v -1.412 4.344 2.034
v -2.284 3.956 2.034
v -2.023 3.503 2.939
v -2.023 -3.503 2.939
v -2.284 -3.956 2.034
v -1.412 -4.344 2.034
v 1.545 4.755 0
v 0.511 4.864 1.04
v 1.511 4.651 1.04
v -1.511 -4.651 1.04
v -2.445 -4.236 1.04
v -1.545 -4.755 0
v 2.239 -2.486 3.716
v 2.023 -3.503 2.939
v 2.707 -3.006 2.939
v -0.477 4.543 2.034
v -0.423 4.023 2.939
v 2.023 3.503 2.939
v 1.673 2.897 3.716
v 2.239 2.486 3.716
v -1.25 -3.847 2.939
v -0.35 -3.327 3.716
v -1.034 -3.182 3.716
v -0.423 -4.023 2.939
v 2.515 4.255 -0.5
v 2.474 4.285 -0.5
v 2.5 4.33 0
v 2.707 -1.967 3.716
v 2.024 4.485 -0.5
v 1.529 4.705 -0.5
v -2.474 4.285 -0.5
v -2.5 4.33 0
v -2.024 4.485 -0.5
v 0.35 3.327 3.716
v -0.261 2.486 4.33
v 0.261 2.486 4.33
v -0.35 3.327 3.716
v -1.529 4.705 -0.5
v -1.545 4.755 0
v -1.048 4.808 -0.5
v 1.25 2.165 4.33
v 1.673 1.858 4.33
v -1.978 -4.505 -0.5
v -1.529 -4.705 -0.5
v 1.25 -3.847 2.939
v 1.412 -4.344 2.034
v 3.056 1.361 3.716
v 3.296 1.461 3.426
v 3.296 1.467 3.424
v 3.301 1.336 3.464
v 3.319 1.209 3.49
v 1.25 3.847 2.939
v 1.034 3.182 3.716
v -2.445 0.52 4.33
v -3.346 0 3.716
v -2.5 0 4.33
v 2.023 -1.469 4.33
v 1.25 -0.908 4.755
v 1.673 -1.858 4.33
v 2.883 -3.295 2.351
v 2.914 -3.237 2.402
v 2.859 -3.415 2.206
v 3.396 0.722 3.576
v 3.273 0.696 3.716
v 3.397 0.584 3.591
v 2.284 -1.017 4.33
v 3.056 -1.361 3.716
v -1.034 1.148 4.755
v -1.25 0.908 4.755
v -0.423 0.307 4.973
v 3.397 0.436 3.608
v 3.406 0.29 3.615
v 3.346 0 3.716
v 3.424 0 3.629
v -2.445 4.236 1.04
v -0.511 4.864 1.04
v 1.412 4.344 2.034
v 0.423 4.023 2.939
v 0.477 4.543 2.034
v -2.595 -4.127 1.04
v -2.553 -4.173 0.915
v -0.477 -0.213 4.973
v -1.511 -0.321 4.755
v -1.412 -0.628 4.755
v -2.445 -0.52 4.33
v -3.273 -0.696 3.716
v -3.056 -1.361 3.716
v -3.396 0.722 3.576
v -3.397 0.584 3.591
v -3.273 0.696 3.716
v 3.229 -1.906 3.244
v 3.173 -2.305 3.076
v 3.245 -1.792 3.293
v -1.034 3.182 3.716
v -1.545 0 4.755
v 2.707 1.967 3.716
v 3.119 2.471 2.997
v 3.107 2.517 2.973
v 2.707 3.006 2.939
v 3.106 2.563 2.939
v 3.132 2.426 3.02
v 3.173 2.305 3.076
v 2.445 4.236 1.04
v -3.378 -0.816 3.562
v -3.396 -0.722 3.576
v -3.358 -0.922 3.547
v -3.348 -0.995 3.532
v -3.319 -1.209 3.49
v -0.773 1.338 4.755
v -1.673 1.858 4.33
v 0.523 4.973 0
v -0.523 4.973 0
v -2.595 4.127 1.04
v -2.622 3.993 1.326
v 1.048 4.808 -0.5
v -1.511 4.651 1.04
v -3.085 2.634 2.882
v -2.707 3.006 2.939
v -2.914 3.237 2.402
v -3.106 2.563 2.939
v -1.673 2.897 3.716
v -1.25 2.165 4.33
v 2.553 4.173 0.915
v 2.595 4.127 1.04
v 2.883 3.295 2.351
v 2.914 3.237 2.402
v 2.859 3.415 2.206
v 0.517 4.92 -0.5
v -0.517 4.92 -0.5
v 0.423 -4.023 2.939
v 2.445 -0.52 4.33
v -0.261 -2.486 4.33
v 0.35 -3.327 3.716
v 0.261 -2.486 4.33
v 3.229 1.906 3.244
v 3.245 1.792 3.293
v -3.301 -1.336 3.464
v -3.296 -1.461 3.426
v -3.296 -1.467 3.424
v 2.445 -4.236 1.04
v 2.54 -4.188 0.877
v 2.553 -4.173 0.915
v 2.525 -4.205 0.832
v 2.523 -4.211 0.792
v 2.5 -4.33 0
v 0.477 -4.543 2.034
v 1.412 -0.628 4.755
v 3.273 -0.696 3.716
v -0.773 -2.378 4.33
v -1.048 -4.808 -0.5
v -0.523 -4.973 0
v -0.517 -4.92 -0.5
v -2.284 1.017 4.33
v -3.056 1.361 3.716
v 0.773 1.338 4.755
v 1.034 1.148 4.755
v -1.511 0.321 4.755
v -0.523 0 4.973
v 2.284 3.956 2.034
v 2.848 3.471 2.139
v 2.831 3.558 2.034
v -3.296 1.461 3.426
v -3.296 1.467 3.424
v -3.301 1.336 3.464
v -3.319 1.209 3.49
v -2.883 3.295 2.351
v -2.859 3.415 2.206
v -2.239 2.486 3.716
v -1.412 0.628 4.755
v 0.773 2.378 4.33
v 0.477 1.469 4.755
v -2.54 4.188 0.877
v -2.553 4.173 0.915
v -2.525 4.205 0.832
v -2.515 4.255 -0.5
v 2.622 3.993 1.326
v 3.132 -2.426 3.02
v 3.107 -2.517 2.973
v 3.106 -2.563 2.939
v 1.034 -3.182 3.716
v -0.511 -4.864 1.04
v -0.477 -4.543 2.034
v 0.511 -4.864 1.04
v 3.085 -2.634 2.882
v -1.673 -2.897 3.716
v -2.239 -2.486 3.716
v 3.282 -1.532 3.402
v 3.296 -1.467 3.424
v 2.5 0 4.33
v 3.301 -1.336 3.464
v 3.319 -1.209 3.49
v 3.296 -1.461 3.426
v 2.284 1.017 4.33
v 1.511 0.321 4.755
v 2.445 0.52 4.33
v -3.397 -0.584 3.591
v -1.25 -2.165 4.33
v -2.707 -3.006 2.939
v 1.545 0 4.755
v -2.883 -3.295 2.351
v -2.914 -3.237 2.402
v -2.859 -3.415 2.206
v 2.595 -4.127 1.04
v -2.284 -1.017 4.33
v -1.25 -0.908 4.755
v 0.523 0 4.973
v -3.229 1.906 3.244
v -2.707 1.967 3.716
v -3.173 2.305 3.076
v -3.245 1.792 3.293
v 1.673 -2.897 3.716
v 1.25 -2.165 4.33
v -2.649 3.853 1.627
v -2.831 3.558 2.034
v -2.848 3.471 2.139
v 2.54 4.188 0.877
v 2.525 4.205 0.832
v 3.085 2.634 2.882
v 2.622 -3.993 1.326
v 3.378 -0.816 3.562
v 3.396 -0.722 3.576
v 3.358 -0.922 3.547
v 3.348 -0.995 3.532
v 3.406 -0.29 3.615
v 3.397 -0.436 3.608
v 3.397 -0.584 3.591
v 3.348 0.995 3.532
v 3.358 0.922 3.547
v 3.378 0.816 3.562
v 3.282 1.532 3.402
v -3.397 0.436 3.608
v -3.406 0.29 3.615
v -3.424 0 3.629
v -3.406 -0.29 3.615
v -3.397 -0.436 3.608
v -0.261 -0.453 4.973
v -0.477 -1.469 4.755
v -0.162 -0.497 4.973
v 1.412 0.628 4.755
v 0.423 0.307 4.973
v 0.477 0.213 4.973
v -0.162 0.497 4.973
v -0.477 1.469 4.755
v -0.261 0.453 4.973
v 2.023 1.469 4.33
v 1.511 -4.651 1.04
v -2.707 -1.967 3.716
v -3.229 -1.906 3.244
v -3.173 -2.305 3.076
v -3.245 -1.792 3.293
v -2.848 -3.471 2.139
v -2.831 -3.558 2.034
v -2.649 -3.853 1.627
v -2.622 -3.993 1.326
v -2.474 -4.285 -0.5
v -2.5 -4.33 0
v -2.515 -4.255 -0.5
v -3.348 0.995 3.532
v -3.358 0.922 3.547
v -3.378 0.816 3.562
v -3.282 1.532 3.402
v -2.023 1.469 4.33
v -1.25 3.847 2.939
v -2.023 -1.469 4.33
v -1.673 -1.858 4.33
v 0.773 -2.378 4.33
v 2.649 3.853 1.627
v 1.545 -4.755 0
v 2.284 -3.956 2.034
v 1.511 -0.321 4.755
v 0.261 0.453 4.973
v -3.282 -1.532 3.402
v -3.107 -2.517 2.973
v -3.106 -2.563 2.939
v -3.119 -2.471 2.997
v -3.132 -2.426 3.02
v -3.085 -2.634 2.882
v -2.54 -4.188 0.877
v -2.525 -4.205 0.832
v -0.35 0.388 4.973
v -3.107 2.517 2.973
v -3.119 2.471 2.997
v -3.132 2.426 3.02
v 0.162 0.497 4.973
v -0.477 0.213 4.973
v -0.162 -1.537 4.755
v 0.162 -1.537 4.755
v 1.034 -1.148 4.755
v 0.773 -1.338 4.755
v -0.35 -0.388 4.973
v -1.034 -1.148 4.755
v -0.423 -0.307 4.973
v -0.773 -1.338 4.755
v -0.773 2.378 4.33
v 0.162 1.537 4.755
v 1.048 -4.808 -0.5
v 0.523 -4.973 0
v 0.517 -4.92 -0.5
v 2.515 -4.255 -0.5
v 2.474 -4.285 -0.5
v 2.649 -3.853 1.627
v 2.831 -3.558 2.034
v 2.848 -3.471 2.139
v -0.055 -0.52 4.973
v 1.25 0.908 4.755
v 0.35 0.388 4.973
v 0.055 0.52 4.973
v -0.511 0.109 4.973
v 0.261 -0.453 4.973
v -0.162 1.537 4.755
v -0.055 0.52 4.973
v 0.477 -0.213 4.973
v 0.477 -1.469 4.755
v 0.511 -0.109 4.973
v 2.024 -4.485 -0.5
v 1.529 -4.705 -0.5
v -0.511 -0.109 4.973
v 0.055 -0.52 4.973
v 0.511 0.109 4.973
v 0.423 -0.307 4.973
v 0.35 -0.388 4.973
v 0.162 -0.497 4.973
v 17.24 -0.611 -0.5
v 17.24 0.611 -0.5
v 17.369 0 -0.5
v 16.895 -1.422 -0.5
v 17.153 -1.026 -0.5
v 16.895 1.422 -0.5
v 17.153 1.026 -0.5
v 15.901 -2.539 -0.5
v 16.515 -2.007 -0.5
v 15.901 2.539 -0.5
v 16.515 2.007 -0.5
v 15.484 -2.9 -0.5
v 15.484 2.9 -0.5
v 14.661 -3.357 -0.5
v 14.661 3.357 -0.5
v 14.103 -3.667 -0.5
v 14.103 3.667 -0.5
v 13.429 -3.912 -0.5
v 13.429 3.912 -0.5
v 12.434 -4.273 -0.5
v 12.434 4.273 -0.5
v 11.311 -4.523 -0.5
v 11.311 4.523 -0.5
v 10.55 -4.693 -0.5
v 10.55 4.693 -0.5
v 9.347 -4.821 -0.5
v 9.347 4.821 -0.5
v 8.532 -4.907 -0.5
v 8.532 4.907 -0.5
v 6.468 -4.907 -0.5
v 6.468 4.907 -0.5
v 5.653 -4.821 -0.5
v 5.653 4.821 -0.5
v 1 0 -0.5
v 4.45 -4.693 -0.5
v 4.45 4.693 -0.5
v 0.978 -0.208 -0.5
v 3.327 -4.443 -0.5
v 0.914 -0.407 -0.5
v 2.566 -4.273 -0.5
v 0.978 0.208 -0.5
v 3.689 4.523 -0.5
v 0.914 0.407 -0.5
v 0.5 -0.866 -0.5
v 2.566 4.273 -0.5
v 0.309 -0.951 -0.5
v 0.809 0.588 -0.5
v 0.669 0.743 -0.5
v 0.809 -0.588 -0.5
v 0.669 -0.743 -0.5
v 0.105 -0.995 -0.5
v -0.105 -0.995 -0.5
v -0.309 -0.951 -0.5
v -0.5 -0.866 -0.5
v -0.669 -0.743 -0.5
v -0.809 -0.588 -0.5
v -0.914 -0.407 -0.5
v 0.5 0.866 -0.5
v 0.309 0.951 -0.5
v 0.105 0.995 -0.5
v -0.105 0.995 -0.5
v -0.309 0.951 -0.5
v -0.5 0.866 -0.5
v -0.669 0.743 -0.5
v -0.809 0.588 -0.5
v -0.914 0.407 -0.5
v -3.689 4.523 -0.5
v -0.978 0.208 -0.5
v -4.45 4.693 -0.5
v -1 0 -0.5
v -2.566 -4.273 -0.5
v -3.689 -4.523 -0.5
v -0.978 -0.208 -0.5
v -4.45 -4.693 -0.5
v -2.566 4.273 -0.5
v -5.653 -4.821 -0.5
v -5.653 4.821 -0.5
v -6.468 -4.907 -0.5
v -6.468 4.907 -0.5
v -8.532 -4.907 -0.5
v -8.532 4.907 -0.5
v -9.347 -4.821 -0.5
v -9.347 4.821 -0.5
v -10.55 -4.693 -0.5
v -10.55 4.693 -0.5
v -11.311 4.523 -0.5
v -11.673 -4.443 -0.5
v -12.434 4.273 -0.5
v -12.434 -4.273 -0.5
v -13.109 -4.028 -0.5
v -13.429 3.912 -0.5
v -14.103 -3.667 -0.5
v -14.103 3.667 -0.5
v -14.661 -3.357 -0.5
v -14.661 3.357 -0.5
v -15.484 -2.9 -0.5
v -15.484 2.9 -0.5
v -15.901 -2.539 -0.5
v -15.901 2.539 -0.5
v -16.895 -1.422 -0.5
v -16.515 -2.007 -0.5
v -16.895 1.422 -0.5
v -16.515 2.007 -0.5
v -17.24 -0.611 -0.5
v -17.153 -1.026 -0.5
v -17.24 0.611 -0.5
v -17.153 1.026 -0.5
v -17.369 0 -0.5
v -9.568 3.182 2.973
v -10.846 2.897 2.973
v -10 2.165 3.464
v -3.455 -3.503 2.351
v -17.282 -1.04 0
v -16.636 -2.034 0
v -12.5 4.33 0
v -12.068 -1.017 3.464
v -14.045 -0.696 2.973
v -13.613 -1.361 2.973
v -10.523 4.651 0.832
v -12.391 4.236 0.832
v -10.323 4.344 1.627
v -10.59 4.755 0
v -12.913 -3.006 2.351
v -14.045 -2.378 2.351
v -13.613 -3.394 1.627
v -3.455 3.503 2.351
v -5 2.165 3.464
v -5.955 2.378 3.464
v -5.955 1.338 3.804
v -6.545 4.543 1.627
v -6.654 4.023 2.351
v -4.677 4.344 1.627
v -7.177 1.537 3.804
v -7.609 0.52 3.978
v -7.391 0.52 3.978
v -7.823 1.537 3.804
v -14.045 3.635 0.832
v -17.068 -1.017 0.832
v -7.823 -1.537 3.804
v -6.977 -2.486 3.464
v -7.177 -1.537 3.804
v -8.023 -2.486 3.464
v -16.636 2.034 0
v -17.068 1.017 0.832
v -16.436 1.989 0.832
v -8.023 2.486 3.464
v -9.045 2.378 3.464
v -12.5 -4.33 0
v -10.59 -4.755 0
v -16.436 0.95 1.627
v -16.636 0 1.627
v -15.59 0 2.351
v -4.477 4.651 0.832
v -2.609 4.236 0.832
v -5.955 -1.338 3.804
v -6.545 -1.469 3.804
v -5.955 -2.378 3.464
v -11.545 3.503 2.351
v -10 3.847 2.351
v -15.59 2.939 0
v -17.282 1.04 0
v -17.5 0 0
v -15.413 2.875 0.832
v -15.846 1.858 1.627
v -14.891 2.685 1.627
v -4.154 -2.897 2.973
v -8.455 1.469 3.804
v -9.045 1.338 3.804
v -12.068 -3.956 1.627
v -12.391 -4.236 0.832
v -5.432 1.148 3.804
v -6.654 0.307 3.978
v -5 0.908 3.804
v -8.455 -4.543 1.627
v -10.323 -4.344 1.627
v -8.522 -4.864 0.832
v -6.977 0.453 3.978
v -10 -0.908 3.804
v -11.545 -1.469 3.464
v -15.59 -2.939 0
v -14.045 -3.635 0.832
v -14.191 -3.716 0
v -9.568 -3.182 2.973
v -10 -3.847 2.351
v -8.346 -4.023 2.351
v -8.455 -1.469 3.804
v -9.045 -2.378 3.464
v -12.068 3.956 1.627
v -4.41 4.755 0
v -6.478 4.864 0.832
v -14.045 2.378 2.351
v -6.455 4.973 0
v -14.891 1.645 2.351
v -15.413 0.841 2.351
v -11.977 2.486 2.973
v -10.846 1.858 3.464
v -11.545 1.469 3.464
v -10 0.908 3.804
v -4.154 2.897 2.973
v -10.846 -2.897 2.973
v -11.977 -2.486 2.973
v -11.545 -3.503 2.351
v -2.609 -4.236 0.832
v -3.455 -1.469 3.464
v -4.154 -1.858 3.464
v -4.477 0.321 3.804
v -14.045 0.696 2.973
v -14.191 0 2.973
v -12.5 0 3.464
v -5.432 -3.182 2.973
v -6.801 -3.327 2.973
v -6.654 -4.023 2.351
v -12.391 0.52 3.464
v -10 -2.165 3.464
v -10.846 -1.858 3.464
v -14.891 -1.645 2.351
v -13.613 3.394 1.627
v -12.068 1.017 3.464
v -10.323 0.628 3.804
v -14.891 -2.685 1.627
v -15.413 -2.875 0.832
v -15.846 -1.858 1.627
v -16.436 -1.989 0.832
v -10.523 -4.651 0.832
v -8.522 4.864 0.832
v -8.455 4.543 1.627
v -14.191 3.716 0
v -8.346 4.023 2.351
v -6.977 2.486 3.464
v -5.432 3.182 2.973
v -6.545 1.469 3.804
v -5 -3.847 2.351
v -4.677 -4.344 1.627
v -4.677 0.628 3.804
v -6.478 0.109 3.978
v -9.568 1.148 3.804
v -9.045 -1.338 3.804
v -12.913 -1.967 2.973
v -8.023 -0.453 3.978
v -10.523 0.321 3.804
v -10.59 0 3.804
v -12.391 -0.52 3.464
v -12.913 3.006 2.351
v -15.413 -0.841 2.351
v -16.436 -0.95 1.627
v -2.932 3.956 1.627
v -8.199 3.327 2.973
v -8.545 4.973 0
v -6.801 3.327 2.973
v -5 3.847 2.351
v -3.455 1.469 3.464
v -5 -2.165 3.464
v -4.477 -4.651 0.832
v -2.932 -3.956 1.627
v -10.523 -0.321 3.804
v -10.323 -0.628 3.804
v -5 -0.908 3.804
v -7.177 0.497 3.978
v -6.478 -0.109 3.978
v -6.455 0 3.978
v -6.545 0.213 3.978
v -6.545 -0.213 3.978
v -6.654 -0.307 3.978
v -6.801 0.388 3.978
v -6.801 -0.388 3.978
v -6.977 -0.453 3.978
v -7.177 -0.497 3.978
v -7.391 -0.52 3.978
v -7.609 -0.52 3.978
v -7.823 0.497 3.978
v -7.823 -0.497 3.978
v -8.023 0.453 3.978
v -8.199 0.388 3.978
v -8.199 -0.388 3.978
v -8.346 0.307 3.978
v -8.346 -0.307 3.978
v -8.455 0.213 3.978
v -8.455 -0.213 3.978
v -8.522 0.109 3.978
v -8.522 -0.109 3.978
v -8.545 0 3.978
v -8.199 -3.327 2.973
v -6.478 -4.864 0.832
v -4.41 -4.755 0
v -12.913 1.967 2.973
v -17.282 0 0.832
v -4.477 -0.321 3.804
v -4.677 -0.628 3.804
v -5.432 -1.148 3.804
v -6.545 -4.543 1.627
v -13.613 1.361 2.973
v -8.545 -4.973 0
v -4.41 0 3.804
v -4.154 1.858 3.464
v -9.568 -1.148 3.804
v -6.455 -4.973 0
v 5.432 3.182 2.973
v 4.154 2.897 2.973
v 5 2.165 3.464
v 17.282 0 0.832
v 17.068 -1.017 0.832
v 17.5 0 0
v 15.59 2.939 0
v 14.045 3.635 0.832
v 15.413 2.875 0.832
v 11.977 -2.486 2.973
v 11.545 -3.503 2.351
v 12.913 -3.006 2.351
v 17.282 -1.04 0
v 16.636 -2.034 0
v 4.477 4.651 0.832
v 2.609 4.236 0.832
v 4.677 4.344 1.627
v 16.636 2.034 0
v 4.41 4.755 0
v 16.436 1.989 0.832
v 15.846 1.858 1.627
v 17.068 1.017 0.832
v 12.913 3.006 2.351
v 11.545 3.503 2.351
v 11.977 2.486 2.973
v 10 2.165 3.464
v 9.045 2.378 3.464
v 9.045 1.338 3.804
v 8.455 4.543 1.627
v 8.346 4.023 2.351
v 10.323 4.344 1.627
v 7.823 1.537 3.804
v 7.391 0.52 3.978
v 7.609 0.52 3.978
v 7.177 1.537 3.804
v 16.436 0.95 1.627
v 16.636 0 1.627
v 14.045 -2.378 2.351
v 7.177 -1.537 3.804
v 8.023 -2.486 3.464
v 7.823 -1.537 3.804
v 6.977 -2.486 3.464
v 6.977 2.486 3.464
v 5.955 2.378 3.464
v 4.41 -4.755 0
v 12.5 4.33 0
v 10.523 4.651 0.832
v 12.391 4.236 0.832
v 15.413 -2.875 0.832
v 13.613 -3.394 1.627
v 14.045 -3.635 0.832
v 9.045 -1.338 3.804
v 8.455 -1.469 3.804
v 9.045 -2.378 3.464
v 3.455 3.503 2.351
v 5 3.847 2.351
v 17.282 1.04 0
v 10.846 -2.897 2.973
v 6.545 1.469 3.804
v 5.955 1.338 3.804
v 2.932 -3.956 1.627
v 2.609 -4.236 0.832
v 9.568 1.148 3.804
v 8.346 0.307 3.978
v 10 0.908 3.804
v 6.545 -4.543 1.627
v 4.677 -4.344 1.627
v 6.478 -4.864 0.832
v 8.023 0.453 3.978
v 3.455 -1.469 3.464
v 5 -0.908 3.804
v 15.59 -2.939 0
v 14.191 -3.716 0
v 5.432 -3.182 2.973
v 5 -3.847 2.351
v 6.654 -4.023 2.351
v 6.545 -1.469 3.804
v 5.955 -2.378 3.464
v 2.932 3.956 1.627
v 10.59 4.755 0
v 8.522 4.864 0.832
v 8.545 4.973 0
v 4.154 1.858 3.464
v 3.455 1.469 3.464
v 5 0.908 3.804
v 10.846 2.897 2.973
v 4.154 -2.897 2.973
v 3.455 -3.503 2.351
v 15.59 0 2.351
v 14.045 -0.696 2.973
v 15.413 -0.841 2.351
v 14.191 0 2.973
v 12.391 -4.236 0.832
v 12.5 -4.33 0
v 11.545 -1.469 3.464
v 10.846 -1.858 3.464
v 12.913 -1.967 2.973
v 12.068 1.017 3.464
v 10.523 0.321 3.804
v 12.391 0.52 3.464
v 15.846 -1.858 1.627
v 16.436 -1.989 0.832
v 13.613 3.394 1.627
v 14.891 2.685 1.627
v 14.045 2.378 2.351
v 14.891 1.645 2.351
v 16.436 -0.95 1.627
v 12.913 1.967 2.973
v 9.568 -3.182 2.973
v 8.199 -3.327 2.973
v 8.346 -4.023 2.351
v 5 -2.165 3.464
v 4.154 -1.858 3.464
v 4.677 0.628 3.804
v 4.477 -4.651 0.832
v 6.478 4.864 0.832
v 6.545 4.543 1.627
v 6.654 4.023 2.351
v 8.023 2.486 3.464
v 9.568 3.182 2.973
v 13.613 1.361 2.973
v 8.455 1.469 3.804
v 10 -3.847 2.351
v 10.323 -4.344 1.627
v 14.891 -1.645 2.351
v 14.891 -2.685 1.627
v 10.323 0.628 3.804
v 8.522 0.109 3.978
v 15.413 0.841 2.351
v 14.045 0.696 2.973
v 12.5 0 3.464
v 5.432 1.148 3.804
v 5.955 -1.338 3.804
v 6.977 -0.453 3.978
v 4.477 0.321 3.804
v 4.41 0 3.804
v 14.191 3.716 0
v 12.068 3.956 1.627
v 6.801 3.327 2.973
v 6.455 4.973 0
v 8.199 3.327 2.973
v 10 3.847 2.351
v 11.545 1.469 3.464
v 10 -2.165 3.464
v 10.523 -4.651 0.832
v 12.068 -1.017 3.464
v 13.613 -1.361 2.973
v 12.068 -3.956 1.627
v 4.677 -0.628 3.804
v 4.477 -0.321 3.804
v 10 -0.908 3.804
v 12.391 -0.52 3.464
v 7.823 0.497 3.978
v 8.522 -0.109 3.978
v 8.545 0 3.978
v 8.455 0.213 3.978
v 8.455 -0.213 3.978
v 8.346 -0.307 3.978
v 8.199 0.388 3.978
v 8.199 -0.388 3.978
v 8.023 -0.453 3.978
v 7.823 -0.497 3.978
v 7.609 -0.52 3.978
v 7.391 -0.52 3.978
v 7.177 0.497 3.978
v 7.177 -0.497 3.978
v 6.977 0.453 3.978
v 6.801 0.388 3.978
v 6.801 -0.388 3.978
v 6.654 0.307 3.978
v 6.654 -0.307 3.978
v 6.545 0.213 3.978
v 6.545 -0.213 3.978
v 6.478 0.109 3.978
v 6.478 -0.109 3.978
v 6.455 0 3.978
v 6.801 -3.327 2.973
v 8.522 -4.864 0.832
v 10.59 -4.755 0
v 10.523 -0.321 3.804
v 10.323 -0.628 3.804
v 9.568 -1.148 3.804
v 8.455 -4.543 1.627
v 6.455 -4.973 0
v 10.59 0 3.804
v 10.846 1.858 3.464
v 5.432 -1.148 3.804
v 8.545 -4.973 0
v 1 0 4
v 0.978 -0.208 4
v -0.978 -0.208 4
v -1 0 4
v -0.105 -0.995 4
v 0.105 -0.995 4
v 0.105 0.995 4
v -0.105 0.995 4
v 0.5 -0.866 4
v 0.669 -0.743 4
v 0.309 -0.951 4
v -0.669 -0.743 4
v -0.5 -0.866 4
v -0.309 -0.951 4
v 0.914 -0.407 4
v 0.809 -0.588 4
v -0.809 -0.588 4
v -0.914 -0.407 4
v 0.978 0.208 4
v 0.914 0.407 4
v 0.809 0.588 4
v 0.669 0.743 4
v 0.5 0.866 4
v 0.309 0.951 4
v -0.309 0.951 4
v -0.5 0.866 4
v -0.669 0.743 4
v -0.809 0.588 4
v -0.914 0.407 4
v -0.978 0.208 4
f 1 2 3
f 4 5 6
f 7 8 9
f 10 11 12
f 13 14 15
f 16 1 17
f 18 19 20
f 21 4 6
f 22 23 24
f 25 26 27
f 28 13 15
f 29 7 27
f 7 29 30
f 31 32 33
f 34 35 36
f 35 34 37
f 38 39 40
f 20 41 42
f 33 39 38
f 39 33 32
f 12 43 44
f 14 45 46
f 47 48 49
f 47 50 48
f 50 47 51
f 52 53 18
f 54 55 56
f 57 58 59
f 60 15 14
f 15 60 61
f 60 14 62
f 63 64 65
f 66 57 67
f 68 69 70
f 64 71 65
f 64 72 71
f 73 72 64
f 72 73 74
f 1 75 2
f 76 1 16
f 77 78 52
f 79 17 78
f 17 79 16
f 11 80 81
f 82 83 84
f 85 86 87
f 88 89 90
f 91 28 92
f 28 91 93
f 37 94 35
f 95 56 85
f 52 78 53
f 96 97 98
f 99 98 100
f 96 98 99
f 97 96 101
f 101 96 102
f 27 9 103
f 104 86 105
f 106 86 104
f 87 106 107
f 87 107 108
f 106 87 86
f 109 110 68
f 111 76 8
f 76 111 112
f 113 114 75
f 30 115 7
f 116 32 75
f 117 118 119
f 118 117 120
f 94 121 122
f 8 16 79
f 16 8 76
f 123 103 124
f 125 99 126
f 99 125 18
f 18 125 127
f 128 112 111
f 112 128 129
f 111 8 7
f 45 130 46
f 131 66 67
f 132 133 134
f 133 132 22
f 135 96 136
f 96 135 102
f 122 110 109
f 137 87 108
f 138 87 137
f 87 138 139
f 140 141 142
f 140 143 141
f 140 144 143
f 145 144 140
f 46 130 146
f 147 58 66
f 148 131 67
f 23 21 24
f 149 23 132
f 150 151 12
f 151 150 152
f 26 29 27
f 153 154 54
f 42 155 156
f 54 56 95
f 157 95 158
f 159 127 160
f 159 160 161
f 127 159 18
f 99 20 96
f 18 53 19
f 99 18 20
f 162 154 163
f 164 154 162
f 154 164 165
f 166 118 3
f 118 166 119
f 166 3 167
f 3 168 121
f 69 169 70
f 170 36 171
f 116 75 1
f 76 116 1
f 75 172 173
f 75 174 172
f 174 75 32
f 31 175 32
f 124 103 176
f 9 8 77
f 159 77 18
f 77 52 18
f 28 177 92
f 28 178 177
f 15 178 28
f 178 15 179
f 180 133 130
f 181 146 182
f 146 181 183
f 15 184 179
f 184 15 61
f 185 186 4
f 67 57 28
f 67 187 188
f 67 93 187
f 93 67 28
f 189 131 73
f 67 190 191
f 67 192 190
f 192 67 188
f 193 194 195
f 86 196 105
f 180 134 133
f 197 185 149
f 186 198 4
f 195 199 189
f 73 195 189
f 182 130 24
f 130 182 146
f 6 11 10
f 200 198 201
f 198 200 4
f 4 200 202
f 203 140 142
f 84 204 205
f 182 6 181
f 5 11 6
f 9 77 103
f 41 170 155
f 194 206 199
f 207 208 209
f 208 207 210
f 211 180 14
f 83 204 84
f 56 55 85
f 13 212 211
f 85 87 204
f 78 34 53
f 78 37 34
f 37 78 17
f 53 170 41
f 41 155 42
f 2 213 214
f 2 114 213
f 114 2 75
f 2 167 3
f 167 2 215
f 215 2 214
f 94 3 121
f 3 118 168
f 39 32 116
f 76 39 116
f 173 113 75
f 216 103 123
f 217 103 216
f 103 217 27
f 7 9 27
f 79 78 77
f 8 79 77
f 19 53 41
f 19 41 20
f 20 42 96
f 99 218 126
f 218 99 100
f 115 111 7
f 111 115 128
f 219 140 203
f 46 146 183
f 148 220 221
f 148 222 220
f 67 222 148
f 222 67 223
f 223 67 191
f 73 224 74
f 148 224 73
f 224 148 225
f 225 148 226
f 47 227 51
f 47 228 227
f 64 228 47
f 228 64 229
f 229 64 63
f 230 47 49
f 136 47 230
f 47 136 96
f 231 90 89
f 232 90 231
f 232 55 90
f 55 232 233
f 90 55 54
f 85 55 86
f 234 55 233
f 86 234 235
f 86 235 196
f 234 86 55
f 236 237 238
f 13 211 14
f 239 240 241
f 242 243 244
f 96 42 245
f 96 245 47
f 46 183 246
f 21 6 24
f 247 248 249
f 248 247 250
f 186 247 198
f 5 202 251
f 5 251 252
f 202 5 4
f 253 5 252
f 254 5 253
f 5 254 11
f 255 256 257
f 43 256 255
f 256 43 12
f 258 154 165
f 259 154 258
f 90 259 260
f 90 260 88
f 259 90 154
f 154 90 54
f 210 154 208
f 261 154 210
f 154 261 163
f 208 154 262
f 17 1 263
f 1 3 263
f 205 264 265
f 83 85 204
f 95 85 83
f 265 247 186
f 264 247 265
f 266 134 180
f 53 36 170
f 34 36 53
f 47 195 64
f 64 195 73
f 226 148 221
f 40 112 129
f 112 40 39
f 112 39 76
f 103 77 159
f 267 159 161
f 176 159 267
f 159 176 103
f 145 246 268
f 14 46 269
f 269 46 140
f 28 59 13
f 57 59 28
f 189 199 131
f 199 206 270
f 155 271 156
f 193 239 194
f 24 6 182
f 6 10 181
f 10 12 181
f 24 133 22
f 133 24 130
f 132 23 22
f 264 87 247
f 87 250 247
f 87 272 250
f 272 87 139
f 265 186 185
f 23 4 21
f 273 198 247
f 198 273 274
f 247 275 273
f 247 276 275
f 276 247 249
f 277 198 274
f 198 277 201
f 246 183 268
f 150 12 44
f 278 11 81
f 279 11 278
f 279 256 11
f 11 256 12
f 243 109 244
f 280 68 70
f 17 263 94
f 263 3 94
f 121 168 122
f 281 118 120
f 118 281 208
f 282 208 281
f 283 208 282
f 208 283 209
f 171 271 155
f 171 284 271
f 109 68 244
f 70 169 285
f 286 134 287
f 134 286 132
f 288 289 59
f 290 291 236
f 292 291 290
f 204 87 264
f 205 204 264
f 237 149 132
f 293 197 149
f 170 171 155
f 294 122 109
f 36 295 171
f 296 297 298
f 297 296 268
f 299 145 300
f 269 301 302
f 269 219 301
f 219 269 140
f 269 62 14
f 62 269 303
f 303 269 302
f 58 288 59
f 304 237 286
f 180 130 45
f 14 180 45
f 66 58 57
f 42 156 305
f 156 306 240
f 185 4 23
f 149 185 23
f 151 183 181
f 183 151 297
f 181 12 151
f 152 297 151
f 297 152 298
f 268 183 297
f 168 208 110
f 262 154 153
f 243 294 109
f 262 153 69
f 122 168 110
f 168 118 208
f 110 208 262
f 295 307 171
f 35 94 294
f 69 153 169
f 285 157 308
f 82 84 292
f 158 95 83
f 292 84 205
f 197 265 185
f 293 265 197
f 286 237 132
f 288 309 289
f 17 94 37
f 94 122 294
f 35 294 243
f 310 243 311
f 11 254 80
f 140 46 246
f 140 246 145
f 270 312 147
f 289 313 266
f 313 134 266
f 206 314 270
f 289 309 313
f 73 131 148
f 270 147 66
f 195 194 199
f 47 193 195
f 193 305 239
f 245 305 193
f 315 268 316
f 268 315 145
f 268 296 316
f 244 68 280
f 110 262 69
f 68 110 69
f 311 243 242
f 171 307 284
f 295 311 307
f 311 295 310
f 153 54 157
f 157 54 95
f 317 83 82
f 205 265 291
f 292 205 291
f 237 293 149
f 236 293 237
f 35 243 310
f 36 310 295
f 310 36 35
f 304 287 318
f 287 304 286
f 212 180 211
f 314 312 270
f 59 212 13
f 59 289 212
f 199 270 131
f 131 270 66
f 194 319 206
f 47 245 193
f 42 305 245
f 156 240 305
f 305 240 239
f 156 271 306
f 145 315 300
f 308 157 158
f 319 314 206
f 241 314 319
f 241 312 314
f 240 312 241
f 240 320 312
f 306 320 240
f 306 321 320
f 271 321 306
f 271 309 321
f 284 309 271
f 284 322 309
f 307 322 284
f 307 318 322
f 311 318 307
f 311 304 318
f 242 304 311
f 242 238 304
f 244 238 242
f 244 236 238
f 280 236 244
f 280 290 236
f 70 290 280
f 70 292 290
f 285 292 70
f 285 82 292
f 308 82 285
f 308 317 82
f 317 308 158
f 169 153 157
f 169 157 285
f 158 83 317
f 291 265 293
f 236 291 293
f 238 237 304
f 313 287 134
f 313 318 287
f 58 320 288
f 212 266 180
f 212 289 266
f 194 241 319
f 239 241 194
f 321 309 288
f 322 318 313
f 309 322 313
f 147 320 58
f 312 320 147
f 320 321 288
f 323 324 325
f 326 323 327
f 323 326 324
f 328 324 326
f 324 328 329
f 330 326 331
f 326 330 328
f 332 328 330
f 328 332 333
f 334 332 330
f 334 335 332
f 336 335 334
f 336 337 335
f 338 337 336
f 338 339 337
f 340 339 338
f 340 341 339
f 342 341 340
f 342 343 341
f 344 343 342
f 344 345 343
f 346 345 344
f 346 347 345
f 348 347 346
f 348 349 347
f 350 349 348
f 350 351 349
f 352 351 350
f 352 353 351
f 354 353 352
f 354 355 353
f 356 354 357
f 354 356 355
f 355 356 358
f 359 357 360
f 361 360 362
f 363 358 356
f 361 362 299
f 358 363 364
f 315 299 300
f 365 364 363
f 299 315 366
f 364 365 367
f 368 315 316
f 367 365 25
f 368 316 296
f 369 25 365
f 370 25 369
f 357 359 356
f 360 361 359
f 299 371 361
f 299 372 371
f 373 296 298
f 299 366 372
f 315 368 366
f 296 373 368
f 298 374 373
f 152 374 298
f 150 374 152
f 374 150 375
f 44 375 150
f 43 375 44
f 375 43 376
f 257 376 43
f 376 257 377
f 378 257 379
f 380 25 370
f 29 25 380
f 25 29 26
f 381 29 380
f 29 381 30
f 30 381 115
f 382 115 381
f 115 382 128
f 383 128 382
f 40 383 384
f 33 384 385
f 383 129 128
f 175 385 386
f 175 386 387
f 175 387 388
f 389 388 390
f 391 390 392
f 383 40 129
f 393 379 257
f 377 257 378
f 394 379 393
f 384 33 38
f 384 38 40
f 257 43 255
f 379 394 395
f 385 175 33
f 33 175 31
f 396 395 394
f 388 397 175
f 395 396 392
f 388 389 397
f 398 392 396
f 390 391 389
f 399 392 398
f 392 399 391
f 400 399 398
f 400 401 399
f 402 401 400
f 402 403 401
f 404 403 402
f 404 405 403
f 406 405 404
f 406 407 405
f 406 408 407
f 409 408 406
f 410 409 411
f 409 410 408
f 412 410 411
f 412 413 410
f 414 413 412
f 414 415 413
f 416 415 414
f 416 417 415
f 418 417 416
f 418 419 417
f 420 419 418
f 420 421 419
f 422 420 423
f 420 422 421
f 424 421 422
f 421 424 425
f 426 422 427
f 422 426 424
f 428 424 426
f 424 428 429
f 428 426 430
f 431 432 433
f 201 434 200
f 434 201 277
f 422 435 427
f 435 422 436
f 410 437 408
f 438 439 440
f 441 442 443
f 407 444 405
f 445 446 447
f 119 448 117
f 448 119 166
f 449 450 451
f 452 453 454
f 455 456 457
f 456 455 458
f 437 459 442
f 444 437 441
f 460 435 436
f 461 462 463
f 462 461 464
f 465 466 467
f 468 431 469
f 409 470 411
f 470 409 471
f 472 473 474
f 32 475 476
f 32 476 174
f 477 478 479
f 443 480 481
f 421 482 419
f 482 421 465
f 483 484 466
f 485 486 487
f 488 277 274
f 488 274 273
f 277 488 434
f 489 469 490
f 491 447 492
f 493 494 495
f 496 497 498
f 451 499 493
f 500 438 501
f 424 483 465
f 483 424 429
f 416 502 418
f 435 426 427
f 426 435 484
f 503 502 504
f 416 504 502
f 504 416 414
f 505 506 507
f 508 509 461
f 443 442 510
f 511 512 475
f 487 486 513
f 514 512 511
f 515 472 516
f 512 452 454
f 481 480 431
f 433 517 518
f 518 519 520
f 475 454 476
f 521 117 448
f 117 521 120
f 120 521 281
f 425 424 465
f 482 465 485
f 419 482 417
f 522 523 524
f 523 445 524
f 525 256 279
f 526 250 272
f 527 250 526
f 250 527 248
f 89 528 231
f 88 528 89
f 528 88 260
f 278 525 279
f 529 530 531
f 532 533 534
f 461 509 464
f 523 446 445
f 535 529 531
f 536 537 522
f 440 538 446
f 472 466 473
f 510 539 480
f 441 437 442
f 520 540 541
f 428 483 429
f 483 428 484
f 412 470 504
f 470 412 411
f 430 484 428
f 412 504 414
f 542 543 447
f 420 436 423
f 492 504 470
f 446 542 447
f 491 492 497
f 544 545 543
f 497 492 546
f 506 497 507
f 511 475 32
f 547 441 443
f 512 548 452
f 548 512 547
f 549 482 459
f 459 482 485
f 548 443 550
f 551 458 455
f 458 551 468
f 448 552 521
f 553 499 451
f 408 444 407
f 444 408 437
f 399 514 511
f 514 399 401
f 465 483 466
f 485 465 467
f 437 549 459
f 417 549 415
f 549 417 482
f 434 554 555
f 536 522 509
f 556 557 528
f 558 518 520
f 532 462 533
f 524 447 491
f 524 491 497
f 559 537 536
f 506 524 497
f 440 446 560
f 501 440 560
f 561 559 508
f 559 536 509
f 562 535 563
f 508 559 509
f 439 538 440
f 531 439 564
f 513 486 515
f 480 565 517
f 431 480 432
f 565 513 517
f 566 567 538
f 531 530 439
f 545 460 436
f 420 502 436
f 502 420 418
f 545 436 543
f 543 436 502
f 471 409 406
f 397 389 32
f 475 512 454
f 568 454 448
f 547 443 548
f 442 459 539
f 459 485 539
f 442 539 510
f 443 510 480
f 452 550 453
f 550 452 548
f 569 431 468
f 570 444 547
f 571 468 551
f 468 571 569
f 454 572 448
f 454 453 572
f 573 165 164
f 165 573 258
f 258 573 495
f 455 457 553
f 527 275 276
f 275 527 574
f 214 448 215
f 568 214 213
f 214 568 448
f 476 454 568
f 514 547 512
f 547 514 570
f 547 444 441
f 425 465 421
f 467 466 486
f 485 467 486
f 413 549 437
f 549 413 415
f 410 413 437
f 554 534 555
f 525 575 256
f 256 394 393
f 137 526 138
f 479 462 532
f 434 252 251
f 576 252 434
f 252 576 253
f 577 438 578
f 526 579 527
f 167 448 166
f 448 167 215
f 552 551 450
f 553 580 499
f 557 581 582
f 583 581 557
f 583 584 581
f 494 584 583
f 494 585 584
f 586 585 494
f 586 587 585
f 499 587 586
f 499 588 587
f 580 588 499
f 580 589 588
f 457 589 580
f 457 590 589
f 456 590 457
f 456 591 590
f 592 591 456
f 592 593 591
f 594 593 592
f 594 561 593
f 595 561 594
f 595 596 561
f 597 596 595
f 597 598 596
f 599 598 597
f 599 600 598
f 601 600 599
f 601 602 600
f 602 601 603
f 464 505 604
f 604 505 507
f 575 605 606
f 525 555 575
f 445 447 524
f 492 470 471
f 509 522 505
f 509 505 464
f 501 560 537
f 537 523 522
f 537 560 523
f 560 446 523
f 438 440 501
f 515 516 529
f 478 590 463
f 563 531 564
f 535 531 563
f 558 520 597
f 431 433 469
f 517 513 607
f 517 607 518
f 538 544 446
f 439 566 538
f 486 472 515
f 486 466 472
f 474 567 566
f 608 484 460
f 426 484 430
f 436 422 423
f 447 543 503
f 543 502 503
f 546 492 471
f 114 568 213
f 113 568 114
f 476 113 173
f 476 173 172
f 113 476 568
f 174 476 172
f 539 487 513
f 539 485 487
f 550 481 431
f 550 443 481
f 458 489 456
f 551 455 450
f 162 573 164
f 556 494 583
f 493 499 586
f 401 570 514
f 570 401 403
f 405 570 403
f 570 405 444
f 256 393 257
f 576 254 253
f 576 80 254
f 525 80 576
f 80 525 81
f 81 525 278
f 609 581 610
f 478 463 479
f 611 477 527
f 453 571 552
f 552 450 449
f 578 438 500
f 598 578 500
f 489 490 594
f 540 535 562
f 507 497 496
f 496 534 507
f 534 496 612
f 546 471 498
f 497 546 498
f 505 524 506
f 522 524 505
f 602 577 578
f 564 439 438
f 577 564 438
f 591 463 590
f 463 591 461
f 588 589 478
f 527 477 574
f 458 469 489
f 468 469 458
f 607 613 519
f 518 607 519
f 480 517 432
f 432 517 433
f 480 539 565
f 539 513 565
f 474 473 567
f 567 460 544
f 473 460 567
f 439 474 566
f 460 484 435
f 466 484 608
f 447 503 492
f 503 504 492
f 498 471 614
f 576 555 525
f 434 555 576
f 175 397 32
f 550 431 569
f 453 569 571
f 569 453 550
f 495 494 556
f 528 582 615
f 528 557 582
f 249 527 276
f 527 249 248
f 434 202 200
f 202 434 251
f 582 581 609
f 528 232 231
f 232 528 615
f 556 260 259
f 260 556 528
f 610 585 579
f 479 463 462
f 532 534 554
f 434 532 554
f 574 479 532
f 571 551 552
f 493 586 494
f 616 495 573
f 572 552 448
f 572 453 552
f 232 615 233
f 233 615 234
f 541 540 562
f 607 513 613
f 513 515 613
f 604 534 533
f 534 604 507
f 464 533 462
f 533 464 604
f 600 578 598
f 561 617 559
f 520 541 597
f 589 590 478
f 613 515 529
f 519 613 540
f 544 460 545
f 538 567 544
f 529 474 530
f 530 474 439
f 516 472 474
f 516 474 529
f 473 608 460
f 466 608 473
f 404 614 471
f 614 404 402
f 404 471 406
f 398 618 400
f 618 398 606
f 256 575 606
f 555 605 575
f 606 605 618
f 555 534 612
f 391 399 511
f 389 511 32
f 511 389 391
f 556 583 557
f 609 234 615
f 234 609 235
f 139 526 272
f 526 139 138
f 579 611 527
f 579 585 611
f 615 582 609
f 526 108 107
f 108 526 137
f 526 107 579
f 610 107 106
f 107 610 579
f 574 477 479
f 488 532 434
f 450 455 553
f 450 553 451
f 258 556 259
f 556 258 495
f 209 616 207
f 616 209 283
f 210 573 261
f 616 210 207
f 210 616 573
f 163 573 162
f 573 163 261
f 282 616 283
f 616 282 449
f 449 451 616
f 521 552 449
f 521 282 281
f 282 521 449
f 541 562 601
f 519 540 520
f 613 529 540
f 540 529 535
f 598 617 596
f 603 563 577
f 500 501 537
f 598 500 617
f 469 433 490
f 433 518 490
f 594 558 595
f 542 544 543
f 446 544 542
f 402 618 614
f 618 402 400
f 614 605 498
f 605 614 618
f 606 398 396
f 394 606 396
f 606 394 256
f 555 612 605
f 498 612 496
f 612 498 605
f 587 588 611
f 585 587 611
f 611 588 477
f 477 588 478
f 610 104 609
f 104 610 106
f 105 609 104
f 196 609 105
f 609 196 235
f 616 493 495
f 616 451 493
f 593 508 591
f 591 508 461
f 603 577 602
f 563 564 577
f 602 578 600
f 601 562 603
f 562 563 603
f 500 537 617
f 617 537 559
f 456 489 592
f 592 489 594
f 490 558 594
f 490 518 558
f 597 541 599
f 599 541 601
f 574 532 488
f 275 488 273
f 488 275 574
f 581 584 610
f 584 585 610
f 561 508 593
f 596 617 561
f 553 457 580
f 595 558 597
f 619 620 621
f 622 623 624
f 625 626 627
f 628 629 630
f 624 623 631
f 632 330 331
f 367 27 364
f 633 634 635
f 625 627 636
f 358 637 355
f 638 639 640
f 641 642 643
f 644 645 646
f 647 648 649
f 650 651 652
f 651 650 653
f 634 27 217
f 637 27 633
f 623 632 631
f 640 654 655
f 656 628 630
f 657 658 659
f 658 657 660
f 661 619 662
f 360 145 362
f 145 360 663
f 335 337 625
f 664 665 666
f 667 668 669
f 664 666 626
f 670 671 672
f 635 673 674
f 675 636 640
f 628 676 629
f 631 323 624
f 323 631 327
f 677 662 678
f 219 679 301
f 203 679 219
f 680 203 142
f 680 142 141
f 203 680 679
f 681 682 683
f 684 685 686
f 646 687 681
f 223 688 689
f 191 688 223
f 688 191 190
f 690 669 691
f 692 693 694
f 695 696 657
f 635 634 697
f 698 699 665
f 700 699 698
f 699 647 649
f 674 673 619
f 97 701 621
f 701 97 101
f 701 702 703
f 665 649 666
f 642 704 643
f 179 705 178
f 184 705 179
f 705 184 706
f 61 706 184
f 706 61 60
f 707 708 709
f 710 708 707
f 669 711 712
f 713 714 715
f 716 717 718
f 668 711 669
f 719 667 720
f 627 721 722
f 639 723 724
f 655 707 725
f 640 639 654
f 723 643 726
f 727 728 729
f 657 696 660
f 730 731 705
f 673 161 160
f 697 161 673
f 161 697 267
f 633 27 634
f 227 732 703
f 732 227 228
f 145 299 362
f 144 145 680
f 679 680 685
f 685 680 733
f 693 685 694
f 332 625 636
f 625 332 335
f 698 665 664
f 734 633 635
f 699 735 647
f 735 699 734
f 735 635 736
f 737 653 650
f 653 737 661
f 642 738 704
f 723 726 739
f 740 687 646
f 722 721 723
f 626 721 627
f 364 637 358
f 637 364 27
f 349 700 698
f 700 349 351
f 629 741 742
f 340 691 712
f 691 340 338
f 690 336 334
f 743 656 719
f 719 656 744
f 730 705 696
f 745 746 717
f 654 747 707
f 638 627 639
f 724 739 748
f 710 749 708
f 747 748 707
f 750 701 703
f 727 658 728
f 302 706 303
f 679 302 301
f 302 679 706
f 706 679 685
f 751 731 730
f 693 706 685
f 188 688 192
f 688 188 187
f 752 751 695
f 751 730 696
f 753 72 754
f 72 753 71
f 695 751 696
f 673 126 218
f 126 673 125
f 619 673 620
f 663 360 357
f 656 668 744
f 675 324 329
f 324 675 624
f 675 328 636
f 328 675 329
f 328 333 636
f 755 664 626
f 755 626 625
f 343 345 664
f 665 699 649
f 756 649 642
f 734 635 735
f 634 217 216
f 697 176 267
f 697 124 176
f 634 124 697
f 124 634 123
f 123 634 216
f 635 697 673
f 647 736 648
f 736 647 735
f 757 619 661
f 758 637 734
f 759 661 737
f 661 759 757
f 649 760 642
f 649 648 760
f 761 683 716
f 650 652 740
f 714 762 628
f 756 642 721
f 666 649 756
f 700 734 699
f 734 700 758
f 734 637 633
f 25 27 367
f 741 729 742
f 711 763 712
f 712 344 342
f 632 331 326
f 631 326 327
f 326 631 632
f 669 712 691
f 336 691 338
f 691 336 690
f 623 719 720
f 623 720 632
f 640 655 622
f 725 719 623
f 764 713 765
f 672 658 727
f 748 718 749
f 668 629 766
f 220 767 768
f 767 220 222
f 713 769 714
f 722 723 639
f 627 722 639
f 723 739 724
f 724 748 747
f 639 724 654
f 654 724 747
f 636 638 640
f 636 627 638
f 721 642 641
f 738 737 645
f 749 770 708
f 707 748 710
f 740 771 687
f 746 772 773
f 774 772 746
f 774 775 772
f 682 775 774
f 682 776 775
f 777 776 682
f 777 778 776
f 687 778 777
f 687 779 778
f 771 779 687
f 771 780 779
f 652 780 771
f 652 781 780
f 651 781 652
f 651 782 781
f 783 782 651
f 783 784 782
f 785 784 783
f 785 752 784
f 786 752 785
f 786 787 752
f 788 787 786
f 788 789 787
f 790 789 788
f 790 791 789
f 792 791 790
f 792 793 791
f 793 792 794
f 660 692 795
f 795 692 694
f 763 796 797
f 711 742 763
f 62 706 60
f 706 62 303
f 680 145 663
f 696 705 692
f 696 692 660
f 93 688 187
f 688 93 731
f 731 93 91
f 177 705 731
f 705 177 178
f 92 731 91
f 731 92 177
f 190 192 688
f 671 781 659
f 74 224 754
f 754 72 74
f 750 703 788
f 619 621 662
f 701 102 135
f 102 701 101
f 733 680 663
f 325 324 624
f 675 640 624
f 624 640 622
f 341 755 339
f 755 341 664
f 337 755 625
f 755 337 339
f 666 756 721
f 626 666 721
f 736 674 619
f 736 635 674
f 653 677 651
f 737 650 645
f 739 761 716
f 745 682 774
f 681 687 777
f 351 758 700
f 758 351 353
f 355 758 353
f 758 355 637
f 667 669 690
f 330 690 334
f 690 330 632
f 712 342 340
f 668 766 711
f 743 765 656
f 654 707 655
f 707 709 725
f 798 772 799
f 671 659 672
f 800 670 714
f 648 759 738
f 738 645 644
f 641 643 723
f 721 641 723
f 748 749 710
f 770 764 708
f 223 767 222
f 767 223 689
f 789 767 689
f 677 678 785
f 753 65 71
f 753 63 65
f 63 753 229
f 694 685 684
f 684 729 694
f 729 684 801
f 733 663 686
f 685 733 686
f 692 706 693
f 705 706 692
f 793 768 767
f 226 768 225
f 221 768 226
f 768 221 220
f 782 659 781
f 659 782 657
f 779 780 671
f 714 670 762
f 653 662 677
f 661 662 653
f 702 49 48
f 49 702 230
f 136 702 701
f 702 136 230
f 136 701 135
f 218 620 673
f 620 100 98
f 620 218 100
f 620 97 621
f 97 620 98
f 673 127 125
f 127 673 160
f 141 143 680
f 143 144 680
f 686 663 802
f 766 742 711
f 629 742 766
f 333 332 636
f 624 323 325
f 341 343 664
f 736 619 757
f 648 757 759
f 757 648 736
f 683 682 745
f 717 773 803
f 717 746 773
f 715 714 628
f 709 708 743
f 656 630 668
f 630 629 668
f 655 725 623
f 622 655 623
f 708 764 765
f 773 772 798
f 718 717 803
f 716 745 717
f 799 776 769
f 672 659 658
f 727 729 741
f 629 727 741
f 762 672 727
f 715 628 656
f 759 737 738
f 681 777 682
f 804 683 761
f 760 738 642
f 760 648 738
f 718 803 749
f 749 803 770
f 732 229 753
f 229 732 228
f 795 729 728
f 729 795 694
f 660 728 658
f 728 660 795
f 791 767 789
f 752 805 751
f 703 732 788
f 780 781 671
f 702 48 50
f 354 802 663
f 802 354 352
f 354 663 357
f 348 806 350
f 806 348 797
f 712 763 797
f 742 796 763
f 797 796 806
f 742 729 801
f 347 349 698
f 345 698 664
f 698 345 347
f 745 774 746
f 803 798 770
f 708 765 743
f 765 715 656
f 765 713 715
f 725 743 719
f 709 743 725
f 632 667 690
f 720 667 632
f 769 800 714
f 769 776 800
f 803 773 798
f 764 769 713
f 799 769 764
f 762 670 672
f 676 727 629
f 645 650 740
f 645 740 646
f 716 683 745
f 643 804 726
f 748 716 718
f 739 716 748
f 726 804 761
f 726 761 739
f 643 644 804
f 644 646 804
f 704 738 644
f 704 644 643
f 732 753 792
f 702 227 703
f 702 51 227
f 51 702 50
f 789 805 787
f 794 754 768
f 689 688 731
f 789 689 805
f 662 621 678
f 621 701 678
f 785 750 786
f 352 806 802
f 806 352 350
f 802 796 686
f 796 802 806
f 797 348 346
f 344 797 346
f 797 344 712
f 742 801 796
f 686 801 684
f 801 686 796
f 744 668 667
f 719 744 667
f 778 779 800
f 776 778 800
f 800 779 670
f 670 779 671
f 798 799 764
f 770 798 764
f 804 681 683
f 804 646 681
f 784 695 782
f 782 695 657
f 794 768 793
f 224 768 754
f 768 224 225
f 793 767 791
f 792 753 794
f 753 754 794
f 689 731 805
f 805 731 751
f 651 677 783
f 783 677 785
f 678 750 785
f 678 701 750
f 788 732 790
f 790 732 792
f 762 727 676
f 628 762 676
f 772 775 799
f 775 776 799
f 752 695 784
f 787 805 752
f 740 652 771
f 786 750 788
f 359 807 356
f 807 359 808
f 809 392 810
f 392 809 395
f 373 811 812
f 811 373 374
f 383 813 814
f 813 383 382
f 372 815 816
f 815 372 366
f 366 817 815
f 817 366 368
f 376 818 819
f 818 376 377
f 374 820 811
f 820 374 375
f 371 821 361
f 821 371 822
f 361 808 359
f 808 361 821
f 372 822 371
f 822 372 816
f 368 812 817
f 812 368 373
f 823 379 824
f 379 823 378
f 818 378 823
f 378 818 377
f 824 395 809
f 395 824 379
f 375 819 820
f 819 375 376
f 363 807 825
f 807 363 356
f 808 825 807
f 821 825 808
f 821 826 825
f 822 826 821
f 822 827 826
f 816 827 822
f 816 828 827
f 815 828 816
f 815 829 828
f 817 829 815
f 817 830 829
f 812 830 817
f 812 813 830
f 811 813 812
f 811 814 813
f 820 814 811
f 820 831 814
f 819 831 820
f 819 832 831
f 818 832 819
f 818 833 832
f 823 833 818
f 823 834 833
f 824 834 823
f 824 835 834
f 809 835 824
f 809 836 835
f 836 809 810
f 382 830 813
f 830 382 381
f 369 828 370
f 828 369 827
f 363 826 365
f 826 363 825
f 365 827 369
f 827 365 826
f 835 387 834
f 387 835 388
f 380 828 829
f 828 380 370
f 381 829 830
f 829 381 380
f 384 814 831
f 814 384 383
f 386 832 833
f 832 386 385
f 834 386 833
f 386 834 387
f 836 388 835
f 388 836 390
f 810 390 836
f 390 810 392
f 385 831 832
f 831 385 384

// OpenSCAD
 

 

/* Please copy example012.stl to your dropbox folder to be able to show this example. */

 

// example012.stl is Mblock.stl, (c) 2009 Will Langford

// licensed under the Creative Commons - GNU GPL license.

// http://www.thingiverse.com/thing:753

 

$fn = 30;

rotate([180, 0, 0]){ 

difference(){

    union(){

        difference(){

          sphere(5);

          translate([0, 0, 3]) cube([15, 22, 5], true);

          //translate([0, -7.5, 0]) cube([10, 20, 3], true);

         

        }

       

        translate([-7.5, 0, 0]) difference(){

            scale([2, 1, 0.8]) sphere(5);

            translate([0, 0, 3]) cube([30, 40, 5], true);

        }

       

        translate([7.5, 0, 0]) difference(){

            scale([2, 1, 0.8]) sphere(5);

            translate([0, 0, 3]) cube([30, 40, 5], true);

        }

    }

    cylinder(8, 1, 1,        true);

}
}
 
